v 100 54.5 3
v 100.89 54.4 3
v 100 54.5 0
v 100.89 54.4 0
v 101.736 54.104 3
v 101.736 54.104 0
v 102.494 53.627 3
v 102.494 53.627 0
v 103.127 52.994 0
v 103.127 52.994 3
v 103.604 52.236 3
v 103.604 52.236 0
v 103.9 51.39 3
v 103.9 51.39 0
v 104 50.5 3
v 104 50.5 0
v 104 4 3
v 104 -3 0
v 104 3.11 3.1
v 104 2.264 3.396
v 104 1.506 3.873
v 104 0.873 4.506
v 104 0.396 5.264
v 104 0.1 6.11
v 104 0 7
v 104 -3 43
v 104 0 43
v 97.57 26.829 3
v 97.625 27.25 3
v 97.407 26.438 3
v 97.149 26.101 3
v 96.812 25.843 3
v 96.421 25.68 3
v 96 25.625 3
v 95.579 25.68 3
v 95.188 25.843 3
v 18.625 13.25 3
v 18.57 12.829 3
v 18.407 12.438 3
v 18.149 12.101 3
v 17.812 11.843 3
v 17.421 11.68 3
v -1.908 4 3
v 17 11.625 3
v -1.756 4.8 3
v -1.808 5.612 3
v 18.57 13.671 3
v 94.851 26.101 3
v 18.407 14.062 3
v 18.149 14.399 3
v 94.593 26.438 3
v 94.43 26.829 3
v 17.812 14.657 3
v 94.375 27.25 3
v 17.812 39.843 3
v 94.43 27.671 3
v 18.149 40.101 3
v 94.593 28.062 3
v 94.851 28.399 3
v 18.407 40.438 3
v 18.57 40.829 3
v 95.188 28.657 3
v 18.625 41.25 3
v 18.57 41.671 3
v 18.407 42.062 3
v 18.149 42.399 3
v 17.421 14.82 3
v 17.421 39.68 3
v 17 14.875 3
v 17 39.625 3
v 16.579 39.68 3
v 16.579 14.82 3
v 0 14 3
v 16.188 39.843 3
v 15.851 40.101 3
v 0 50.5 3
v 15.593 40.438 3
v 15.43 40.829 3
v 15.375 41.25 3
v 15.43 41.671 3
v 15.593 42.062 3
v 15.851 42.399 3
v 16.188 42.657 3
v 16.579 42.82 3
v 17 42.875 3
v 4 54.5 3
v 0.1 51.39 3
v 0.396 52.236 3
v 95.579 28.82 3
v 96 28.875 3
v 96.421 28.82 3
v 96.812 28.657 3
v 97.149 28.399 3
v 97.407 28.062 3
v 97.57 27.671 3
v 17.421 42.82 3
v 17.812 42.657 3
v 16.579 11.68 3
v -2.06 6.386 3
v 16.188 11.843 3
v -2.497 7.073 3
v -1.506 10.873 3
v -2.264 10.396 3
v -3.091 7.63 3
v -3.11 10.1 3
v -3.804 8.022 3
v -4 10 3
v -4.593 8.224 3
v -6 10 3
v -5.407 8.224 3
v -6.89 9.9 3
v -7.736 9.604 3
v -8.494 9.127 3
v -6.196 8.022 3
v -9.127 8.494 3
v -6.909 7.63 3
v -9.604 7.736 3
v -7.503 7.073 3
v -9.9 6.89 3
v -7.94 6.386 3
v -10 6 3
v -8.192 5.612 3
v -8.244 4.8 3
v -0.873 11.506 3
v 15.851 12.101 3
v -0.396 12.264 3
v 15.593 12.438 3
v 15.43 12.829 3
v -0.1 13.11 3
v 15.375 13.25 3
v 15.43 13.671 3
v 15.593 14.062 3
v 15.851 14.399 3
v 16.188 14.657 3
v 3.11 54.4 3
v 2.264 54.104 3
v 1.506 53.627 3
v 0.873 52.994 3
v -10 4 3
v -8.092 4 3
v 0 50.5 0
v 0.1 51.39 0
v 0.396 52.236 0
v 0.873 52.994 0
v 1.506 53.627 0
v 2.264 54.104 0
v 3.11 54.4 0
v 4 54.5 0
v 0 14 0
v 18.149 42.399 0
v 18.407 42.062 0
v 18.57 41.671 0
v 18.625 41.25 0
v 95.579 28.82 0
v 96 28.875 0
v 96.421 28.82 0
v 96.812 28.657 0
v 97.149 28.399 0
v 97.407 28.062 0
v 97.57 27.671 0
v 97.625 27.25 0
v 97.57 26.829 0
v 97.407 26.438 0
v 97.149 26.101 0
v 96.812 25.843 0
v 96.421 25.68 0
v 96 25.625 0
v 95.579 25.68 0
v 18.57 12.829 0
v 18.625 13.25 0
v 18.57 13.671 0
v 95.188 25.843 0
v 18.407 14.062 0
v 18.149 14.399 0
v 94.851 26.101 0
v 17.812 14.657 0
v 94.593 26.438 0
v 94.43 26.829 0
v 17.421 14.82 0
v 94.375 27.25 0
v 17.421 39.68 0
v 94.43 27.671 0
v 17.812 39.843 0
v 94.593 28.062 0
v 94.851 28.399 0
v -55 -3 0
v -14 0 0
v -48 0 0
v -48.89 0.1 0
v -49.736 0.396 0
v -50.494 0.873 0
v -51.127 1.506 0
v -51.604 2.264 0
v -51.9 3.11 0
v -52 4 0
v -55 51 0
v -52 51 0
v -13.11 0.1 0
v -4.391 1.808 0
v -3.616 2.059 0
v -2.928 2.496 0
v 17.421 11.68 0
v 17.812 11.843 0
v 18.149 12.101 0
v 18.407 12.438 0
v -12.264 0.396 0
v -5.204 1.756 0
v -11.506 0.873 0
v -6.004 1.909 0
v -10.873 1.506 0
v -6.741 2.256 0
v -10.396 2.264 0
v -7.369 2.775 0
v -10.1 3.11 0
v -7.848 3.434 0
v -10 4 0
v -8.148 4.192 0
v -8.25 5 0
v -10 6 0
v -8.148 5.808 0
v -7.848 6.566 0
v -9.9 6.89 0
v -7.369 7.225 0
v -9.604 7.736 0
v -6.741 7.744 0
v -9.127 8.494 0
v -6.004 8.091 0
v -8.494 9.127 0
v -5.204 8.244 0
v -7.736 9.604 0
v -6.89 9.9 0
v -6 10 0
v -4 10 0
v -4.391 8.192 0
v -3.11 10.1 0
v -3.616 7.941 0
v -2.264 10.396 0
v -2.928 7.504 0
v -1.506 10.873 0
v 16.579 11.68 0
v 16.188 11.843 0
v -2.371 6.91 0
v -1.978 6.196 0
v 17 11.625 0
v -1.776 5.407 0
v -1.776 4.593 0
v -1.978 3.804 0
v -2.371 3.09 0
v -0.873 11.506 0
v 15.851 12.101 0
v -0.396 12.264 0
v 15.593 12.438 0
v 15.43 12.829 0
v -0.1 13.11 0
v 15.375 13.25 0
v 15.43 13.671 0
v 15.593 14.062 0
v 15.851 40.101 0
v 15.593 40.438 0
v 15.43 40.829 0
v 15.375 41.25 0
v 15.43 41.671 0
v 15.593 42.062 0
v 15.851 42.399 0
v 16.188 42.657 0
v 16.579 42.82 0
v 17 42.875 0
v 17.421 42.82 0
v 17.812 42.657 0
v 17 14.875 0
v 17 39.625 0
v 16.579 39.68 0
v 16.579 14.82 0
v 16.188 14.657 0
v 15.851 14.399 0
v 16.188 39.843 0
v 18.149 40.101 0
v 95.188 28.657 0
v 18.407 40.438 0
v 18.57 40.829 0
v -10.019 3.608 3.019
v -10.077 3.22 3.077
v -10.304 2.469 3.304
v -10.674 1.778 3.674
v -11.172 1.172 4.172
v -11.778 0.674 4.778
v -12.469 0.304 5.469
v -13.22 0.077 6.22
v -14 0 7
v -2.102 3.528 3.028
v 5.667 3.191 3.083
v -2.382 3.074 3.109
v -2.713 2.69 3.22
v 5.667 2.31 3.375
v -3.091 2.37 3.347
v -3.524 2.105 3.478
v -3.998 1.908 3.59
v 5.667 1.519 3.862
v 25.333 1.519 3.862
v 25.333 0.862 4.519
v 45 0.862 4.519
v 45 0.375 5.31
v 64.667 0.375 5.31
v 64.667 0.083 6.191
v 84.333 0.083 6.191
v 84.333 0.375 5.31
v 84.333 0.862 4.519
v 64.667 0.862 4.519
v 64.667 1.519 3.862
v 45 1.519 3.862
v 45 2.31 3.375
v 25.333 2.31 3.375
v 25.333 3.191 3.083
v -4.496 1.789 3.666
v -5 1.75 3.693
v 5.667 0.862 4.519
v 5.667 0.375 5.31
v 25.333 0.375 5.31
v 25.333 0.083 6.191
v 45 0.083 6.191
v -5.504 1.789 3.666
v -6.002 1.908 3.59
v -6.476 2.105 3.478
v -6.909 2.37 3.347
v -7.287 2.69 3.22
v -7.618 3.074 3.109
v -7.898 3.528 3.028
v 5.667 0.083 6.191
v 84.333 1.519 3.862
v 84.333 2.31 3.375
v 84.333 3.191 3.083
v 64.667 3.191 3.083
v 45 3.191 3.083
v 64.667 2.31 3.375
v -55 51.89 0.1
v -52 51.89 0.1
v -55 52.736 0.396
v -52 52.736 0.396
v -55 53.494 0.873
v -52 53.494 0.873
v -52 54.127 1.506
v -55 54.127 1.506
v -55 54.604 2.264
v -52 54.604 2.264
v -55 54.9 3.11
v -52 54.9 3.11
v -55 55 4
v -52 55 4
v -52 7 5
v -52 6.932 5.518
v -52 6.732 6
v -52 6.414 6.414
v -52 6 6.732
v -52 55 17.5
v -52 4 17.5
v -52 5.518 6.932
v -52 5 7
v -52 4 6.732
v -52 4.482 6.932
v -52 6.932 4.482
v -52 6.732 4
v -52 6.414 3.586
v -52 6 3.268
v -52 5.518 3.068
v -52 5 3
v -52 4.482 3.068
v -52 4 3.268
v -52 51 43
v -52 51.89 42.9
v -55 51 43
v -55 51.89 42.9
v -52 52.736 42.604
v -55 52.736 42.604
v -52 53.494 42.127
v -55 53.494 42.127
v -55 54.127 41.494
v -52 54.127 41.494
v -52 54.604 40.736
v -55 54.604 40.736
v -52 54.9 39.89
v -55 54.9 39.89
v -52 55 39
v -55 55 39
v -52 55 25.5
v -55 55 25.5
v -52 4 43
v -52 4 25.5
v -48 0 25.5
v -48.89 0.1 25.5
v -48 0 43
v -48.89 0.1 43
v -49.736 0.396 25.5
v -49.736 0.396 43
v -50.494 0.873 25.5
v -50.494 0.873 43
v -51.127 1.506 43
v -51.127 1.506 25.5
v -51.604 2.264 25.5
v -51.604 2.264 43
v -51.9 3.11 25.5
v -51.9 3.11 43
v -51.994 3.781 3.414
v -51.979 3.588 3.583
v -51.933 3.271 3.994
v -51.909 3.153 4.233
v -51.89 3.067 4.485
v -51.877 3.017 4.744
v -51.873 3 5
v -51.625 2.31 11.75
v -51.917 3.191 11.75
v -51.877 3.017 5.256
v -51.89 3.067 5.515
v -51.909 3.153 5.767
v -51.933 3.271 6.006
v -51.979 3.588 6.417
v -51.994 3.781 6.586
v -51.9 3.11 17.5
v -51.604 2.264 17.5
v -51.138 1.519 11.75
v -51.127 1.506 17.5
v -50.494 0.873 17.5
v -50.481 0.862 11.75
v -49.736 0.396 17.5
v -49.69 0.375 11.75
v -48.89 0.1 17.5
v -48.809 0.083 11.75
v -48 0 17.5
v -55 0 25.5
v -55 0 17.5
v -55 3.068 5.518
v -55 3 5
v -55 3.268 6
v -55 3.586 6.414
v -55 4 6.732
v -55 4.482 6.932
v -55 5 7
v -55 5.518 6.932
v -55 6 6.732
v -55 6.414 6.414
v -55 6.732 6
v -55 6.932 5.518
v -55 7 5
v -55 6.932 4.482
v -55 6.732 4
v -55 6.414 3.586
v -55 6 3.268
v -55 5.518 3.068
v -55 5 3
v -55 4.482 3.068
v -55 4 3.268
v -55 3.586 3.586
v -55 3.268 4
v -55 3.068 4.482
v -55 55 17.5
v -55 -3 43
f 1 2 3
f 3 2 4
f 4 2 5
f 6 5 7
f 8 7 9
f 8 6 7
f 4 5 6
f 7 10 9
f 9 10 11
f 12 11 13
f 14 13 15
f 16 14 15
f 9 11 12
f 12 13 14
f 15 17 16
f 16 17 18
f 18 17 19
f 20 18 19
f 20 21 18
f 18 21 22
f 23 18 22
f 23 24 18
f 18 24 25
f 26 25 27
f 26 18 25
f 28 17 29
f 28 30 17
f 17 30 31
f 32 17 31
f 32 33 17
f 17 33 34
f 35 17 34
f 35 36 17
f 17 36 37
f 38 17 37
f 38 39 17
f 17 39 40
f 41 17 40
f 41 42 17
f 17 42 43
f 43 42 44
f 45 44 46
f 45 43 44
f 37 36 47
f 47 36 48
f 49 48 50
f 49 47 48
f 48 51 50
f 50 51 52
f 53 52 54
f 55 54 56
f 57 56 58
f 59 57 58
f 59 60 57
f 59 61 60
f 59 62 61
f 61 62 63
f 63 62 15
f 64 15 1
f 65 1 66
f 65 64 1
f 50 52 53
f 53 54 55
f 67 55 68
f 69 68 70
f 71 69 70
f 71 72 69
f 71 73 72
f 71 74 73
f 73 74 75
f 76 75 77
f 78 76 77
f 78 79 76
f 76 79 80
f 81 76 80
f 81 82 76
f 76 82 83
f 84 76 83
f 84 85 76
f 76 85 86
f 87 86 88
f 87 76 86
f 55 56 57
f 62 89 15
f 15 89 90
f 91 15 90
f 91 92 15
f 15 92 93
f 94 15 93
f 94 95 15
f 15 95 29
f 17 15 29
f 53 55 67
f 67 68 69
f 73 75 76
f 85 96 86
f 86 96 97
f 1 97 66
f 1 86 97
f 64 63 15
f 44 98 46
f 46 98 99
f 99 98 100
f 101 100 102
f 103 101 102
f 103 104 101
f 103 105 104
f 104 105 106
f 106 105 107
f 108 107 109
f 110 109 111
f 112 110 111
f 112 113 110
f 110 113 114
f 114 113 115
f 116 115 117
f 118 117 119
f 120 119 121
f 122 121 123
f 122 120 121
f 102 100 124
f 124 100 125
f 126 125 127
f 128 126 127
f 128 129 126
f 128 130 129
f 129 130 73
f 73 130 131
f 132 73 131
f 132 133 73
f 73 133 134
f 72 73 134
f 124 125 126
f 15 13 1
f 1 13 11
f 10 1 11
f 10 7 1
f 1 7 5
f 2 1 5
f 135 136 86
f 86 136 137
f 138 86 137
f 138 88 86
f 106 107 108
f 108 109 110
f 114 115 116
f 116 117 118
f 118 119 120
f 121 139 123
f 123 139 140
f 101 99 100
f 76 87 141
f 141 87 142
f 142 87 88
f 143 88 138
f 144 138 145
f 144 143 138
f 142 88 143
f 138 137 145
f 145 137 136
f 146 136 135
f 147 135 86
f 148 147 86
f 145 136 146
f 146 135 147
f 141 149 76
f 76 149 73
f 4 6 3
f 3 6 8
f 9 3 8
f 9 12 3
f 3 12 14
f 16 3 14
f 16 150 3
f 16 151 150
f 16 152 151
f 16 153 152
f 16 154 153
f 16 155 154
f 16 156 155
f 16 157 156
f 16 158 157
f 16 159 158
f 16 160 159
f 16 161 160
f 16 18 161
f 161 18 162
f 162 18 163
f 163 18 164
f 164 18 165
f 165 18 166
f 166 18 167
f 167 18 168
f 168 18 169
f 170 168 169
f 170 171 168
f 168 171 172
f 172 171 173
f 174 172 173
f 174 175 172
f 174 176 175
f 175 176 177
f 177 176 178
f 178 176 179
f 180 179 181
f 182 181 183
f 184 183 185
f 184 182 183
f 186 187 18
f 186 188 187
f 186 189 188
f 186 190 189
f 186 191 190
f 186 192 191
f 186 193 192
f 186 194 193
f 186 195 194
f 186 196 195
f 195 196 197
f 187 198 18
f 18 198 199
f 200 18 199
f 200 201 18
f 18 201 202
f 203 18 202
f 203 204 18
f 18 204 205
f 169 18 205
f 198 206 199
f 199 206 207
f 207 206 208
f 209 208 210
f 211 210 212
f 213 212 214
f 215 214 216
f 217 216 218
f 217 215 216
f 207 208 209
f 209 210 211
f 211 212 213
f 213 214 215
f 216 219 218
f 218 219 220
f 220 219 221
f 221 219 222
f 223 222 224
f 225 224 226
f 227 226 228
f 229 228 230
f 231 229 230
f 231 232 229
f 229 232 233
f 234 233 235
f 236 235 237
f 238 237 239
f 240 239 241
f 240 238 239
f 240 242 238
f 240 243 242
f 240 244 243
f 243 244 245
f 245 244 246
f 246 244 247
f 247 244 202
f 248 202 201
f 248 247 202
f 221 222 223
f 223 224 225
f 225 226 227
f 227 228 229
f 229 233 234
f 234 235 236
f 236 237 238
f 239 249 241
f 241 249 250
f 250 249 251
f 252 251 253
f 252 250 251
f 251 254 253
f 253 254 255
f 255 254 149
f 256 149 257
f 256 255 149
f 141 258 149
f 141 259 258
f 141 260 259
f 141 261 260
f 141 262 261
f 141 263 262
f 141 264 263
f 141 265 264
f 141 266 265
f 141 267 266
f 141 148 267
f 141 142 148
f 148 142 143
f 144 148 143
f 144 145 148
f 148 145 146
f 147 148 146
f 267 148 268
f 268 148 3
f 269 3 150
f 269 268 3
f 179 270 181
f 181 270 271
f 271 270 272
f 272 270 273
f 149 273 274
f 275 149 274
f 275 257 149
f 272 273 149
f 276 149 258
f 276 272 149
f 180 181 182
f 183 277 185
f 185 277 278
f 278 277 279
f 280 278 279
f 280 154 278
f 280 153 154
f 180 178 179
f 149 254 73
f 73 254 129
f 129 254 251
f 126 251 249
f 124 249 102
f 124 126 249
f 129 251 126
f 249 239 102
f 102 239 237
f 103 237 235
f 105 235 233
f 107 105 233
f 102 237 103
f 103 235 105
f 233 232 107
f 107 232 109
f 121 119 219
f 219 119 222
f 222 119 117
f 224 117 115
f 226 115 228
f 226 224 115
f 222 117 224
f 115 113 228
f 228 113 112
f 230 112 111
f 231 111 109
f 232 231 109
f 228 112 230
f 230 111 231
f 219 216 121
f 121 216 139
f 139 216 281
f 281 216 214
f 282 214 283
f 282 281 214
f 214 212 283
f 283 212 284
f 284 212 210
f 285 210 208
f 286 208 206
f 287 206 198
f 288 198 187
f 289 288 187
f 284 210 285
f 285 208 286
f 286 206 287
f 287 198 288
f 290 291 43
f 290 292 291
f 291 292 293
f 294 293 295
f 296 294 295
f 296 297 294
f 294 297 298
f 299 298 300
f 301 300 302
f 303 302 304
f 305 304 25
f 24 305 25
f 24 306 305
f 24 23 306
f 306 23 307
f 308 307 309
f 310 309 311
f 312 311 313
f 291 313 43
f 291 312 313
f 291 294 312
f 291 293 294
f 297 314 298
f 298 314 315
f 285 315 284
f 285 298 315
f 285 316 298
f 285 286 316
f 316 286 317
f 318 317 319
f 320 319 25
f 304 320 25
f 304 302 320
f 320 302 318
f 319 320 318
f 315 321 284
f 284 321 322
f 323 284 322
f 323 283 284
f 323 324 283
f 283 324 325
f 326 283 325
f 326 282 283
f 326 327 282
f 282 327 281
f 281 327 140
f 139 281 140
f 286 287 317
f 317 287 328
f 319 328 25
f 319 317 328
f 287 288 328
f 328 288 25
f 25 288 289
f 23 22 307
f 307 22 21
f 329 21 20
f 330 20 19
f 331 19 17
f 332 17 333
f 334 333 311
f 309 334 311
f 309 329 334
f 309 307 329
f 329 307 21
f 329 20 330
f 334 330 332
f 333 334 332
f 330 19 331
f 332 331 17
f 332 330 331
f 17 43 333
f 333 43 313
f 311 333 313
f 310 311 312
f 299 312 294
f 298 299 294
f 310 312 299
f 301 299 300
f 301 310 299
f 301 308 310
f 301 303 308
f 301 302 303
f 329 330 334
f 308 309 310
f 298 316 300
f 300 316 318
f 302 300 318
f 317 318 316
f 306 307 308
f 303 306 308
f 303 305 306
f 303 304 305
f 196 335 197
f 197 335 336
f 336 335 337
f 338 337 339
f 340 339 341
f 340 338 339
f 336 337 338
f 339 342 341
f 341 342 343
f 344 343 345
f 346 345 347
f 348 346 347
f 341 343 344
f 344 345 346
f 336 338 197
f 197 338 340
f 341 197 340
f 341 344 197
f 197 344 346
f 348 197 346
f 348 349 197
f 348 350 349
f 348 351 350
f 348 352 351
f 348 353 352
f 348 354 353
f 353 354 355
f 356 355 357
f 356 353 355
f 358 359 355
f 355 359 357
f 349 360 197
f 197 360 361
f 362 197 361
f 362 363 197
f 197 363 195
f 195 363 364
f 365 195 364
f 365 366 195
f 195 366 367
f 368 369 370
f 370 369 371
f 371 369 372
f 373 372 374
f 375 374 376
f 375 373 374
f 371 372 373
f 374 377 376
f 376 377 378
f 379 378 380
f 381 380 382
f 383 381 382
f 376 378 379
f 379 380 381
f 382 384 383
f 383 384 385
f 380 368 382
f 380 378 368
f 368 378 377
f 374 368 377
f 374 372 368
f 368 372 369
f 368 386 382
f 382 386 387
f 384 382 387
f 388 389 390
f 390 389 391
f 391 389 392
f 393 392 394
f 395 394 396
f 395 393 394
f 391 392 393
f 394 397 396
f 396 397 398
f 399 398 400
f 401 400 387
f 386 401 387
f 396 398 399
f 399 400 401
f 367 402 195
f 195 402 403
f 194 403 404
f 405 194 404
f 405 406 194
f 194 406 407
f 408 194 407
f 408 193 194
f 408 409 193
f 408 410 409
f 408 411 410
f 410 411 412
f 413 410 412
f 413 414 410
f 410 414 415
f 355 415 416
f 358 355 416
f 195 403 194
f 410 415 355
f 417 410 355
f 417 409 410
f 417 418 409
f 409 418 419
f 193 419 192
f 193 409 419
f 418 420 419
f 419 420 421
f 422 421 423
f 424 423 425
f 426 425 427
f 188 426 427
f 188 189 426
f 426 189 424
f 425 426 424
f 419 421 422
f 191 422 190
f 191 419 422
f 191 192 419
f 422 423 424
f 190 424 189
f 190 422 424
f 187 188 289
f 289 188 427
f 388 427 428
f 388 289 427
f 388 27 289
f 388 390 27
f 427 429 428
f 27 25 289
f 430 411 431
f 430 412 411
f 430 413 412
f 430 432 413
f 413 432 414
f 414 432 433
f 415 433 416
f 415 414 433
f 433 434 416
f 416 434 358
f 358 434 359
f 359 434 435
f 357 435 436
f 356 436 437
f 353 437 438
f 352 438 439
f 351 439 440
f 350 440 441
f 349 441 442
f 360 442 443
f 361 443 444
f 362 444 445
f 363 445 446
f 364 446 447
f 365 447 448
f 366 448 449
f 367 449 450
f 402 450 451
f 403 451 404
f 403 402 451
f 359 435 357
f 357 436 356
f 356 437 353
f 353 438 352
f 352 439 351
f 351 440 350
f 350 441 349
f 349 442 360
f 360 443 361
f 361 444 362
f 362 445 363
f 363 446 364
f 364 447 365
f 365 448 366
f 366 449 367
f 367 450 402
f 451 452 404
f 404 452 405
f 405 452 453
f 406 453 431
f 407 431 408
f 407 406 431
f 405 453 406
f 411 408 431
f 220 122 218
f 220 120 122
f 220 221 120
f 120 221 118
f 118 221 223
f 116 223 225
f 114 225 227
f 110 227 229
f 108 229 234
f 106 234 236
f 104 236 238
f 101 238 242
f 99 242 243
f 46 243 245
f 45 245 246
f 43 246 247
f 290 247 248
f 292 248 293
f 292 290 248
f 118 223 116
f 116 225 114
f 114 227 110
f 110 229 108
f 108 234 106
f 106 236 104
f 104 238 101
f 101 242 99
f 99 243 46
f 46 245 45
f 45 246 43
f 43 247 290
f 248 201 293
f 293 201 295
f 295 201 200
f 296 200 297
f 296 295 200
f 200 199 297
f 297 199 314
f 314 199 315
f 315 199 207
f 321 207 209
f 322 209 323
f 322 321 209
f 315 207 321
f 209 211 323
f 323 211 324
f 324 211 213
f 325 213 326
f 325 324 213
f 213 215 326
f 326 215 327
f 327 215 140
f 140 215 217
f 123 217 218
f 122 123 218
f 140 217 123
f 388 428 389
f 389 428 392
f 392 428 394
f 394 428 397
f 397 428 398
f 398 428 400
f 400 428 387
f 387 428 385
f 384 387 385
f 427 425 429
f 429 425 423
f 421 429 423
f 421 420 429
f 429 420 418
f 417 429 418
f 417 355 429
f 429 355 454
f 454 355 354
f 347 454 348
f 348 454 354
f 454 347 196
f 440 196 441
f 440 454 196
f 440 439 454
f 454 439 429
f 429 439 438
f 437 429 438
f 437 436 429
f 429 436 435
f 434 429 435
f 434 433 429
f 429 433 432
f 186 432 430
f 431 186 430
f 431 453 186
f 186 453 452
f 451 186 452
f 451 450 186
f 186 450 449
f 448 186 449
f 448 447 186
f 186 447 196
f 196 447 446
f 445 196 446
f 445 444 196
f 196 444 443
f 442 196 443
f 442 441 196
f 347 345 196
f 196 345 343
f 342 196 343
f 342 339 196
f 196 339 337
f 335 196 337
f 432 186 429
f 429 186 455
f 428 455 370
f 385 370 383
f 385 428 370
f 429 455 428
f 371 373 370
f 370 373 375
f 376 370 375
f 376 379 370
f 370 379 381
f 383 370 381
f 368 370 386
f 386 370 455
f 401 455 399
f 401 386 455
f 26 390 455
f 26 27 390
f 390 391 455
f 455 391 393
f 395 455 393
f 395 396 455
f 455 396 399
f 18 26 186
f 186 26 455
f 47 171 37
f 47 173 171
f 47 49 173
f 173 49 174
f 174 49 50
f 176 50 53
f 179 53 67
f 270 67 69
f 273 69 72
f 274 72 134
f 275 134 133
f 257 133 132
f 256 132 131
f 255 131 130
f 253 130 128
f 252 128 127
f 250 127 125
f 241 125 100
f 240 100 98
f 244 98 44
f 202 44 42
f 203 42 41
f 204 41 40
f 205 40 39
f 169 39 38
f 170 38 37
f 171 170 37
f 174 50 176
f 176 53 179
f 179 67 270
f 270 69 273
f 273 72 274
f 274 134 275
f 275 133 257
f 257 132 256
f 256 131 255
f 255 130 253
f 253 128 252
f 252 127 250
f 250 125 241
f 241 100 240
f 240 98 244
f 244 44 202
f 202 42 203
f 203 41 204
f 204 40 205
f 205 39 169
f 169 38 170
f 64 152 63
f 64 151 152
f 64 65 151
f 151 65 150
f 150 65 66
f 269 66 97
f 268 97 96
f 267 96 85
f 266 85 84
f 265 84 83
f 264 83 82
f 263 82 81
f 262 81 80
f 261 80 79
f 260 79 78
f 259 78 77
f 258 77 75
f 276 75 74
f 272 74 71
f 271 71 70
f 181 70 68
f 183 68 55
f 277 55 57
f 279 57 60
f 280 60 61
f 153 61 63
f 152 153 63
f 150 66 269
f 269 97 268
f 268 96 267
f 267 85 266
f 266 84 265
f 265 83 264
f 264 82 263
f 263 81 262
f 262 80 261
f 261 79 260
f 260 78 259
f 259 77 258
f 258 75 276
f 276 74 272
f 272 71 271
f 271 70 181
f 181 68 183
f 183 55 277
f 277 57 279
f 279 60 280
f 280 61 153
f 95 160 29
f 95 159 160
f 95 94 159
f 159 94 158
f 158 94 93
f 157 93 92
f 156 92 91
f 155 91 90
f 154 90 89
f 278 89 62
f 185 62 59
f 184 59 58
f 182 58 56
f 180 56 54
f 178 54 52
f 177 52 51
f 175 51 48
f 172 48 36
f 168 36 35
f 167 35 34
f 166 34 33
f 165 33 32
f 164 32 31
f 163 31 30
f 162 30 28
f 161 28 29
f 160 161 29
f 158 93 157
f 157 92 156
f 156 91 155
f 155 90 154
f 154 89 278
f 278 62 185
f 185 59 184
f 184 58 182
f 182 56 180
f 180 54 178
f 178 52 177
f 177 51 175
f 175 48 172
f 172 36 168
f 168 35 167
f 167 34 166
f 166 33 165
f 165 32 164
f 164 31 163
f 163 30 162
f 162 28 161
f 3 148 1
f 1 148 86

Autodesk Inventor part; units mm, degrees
ref_plane "YZ Plane" through (0, 0, 0) normal (1, 0, 0) x (0, 1, 0)
ref_plane "XZ Plane" through (0, 0, 0) normal (0, 1, 0) x (-1, 0, 0)
ref_plane "XY Plane" through (0, 0, 0) normal (0, 0, 1) x (1, 0, 0)
sketch "Sketch1" plane through (0, 0, 0) normal (0, 0, 1) x (1, 0, 0)
  line L0 (0, 0) -> (104, 0)
  line L1 (104, 0) -> (104, 54.5)
  line L2 (104, 54.5) -> (0, 54.5)
  line L3 (0, 54.5) -> (0, 10)
  circle A0 centre (96, 27.25) radius 1.625
  circle A1 centre (17, 41.25) radius 1.625
  circle A2 centre (17, 13.25) radius 1.625
  line L4 (0, 0) -> (-10, 0)
  line L5 (-10, 0) -> (-10, 10)
  line L6 (-10, 10) -> (0, 10)
  dimension "d0" = 104
  dimension "d1" = 54.5
  dimension "d9" = 28
  dimension "d10" = 13.25
  dimension "d11" = 17
  dimension "d12" = 3.25
  dimension "d13" = 3.25
  dimension "d14" = 17
  dimension "d15" = 8
  dimension "d16" = 3.25
  dimension "d17" = 27.25
  dimension "d34" = 10
  dimension "d35" = 10
extrude "Main Mount" add sketch "Sketch1" along normal blind 3
sketch "Sketch2" plane through (0, 0, 0) normal (0, -1, 0) x (1, 0, 0)
  line L0 (104, 0) -> (0, 0)
  line L1 (0, 0) -> (104, 0) projected
  line L2 (0, 0) -> (-55, 0)
  line L3 (-55, 0) -> (-55, 43)
  line L4 (-55, 43) -> (104, 43)
  line L5 (104, 43) -> (104, 0)
  line L6 (104, 0) -> (0, 0)
  dimension "d20" = 55
  dimension "d21" = 43
extrude "Base" add sketch "Sketch2" along normal blind 3
sketch "Sketch3" plane through (0, 0, 0) normal (0, 1, 0) x (1, 0, 0)
  line L0 (-55, 0) -> (-52, 0)
  line L1 (-55, 0) -> (104, 0) projected
  line L2 (-52, -43) -> (-55, -43)
  line L3 (-55, -43) -> (-55, 0)
  line L4 (-55, -43) -> (-55, 0) projected
  line L5 (-52, -17.5) -> (-55, -17.5)
  line L6 (-55, -43) -> (-55, 0) projected
  line L7 (-52, -25.5) -> (-55, -25.5)
  line L8 (-52, 0) -> (-52, -17.5)
  line L9 (-52, -25.5) -> (-52, -43)
  dimension "d24" = 3
  dimension "d31" = 8
extrude "Laser Mount" add sketch "Sketch3" along normal blind 55
hole "Cable Management" at (-5, 5, 3) direction (0, 0, -1) diameter 6.5 depth 8 tip angle 118
hole "Cable Routing" at (-52, 5, 5) direction (-1, 0, 0) diameter 4 depth 8 tip angle 118
fillet "Strength" radius 4 10 edges at (-52, 0, 8.75) (-52, 0, 34.25) (-53.5, 55, 43) (-53.5, 55, 0) (47, 0, 3) (-10, 0, 1.5) (-10, 10, 1.5) (0, 10, 1.5) (0, 54.5, 1.5) (104, 54.5, 1.5)
properties part number "LaserMount"
